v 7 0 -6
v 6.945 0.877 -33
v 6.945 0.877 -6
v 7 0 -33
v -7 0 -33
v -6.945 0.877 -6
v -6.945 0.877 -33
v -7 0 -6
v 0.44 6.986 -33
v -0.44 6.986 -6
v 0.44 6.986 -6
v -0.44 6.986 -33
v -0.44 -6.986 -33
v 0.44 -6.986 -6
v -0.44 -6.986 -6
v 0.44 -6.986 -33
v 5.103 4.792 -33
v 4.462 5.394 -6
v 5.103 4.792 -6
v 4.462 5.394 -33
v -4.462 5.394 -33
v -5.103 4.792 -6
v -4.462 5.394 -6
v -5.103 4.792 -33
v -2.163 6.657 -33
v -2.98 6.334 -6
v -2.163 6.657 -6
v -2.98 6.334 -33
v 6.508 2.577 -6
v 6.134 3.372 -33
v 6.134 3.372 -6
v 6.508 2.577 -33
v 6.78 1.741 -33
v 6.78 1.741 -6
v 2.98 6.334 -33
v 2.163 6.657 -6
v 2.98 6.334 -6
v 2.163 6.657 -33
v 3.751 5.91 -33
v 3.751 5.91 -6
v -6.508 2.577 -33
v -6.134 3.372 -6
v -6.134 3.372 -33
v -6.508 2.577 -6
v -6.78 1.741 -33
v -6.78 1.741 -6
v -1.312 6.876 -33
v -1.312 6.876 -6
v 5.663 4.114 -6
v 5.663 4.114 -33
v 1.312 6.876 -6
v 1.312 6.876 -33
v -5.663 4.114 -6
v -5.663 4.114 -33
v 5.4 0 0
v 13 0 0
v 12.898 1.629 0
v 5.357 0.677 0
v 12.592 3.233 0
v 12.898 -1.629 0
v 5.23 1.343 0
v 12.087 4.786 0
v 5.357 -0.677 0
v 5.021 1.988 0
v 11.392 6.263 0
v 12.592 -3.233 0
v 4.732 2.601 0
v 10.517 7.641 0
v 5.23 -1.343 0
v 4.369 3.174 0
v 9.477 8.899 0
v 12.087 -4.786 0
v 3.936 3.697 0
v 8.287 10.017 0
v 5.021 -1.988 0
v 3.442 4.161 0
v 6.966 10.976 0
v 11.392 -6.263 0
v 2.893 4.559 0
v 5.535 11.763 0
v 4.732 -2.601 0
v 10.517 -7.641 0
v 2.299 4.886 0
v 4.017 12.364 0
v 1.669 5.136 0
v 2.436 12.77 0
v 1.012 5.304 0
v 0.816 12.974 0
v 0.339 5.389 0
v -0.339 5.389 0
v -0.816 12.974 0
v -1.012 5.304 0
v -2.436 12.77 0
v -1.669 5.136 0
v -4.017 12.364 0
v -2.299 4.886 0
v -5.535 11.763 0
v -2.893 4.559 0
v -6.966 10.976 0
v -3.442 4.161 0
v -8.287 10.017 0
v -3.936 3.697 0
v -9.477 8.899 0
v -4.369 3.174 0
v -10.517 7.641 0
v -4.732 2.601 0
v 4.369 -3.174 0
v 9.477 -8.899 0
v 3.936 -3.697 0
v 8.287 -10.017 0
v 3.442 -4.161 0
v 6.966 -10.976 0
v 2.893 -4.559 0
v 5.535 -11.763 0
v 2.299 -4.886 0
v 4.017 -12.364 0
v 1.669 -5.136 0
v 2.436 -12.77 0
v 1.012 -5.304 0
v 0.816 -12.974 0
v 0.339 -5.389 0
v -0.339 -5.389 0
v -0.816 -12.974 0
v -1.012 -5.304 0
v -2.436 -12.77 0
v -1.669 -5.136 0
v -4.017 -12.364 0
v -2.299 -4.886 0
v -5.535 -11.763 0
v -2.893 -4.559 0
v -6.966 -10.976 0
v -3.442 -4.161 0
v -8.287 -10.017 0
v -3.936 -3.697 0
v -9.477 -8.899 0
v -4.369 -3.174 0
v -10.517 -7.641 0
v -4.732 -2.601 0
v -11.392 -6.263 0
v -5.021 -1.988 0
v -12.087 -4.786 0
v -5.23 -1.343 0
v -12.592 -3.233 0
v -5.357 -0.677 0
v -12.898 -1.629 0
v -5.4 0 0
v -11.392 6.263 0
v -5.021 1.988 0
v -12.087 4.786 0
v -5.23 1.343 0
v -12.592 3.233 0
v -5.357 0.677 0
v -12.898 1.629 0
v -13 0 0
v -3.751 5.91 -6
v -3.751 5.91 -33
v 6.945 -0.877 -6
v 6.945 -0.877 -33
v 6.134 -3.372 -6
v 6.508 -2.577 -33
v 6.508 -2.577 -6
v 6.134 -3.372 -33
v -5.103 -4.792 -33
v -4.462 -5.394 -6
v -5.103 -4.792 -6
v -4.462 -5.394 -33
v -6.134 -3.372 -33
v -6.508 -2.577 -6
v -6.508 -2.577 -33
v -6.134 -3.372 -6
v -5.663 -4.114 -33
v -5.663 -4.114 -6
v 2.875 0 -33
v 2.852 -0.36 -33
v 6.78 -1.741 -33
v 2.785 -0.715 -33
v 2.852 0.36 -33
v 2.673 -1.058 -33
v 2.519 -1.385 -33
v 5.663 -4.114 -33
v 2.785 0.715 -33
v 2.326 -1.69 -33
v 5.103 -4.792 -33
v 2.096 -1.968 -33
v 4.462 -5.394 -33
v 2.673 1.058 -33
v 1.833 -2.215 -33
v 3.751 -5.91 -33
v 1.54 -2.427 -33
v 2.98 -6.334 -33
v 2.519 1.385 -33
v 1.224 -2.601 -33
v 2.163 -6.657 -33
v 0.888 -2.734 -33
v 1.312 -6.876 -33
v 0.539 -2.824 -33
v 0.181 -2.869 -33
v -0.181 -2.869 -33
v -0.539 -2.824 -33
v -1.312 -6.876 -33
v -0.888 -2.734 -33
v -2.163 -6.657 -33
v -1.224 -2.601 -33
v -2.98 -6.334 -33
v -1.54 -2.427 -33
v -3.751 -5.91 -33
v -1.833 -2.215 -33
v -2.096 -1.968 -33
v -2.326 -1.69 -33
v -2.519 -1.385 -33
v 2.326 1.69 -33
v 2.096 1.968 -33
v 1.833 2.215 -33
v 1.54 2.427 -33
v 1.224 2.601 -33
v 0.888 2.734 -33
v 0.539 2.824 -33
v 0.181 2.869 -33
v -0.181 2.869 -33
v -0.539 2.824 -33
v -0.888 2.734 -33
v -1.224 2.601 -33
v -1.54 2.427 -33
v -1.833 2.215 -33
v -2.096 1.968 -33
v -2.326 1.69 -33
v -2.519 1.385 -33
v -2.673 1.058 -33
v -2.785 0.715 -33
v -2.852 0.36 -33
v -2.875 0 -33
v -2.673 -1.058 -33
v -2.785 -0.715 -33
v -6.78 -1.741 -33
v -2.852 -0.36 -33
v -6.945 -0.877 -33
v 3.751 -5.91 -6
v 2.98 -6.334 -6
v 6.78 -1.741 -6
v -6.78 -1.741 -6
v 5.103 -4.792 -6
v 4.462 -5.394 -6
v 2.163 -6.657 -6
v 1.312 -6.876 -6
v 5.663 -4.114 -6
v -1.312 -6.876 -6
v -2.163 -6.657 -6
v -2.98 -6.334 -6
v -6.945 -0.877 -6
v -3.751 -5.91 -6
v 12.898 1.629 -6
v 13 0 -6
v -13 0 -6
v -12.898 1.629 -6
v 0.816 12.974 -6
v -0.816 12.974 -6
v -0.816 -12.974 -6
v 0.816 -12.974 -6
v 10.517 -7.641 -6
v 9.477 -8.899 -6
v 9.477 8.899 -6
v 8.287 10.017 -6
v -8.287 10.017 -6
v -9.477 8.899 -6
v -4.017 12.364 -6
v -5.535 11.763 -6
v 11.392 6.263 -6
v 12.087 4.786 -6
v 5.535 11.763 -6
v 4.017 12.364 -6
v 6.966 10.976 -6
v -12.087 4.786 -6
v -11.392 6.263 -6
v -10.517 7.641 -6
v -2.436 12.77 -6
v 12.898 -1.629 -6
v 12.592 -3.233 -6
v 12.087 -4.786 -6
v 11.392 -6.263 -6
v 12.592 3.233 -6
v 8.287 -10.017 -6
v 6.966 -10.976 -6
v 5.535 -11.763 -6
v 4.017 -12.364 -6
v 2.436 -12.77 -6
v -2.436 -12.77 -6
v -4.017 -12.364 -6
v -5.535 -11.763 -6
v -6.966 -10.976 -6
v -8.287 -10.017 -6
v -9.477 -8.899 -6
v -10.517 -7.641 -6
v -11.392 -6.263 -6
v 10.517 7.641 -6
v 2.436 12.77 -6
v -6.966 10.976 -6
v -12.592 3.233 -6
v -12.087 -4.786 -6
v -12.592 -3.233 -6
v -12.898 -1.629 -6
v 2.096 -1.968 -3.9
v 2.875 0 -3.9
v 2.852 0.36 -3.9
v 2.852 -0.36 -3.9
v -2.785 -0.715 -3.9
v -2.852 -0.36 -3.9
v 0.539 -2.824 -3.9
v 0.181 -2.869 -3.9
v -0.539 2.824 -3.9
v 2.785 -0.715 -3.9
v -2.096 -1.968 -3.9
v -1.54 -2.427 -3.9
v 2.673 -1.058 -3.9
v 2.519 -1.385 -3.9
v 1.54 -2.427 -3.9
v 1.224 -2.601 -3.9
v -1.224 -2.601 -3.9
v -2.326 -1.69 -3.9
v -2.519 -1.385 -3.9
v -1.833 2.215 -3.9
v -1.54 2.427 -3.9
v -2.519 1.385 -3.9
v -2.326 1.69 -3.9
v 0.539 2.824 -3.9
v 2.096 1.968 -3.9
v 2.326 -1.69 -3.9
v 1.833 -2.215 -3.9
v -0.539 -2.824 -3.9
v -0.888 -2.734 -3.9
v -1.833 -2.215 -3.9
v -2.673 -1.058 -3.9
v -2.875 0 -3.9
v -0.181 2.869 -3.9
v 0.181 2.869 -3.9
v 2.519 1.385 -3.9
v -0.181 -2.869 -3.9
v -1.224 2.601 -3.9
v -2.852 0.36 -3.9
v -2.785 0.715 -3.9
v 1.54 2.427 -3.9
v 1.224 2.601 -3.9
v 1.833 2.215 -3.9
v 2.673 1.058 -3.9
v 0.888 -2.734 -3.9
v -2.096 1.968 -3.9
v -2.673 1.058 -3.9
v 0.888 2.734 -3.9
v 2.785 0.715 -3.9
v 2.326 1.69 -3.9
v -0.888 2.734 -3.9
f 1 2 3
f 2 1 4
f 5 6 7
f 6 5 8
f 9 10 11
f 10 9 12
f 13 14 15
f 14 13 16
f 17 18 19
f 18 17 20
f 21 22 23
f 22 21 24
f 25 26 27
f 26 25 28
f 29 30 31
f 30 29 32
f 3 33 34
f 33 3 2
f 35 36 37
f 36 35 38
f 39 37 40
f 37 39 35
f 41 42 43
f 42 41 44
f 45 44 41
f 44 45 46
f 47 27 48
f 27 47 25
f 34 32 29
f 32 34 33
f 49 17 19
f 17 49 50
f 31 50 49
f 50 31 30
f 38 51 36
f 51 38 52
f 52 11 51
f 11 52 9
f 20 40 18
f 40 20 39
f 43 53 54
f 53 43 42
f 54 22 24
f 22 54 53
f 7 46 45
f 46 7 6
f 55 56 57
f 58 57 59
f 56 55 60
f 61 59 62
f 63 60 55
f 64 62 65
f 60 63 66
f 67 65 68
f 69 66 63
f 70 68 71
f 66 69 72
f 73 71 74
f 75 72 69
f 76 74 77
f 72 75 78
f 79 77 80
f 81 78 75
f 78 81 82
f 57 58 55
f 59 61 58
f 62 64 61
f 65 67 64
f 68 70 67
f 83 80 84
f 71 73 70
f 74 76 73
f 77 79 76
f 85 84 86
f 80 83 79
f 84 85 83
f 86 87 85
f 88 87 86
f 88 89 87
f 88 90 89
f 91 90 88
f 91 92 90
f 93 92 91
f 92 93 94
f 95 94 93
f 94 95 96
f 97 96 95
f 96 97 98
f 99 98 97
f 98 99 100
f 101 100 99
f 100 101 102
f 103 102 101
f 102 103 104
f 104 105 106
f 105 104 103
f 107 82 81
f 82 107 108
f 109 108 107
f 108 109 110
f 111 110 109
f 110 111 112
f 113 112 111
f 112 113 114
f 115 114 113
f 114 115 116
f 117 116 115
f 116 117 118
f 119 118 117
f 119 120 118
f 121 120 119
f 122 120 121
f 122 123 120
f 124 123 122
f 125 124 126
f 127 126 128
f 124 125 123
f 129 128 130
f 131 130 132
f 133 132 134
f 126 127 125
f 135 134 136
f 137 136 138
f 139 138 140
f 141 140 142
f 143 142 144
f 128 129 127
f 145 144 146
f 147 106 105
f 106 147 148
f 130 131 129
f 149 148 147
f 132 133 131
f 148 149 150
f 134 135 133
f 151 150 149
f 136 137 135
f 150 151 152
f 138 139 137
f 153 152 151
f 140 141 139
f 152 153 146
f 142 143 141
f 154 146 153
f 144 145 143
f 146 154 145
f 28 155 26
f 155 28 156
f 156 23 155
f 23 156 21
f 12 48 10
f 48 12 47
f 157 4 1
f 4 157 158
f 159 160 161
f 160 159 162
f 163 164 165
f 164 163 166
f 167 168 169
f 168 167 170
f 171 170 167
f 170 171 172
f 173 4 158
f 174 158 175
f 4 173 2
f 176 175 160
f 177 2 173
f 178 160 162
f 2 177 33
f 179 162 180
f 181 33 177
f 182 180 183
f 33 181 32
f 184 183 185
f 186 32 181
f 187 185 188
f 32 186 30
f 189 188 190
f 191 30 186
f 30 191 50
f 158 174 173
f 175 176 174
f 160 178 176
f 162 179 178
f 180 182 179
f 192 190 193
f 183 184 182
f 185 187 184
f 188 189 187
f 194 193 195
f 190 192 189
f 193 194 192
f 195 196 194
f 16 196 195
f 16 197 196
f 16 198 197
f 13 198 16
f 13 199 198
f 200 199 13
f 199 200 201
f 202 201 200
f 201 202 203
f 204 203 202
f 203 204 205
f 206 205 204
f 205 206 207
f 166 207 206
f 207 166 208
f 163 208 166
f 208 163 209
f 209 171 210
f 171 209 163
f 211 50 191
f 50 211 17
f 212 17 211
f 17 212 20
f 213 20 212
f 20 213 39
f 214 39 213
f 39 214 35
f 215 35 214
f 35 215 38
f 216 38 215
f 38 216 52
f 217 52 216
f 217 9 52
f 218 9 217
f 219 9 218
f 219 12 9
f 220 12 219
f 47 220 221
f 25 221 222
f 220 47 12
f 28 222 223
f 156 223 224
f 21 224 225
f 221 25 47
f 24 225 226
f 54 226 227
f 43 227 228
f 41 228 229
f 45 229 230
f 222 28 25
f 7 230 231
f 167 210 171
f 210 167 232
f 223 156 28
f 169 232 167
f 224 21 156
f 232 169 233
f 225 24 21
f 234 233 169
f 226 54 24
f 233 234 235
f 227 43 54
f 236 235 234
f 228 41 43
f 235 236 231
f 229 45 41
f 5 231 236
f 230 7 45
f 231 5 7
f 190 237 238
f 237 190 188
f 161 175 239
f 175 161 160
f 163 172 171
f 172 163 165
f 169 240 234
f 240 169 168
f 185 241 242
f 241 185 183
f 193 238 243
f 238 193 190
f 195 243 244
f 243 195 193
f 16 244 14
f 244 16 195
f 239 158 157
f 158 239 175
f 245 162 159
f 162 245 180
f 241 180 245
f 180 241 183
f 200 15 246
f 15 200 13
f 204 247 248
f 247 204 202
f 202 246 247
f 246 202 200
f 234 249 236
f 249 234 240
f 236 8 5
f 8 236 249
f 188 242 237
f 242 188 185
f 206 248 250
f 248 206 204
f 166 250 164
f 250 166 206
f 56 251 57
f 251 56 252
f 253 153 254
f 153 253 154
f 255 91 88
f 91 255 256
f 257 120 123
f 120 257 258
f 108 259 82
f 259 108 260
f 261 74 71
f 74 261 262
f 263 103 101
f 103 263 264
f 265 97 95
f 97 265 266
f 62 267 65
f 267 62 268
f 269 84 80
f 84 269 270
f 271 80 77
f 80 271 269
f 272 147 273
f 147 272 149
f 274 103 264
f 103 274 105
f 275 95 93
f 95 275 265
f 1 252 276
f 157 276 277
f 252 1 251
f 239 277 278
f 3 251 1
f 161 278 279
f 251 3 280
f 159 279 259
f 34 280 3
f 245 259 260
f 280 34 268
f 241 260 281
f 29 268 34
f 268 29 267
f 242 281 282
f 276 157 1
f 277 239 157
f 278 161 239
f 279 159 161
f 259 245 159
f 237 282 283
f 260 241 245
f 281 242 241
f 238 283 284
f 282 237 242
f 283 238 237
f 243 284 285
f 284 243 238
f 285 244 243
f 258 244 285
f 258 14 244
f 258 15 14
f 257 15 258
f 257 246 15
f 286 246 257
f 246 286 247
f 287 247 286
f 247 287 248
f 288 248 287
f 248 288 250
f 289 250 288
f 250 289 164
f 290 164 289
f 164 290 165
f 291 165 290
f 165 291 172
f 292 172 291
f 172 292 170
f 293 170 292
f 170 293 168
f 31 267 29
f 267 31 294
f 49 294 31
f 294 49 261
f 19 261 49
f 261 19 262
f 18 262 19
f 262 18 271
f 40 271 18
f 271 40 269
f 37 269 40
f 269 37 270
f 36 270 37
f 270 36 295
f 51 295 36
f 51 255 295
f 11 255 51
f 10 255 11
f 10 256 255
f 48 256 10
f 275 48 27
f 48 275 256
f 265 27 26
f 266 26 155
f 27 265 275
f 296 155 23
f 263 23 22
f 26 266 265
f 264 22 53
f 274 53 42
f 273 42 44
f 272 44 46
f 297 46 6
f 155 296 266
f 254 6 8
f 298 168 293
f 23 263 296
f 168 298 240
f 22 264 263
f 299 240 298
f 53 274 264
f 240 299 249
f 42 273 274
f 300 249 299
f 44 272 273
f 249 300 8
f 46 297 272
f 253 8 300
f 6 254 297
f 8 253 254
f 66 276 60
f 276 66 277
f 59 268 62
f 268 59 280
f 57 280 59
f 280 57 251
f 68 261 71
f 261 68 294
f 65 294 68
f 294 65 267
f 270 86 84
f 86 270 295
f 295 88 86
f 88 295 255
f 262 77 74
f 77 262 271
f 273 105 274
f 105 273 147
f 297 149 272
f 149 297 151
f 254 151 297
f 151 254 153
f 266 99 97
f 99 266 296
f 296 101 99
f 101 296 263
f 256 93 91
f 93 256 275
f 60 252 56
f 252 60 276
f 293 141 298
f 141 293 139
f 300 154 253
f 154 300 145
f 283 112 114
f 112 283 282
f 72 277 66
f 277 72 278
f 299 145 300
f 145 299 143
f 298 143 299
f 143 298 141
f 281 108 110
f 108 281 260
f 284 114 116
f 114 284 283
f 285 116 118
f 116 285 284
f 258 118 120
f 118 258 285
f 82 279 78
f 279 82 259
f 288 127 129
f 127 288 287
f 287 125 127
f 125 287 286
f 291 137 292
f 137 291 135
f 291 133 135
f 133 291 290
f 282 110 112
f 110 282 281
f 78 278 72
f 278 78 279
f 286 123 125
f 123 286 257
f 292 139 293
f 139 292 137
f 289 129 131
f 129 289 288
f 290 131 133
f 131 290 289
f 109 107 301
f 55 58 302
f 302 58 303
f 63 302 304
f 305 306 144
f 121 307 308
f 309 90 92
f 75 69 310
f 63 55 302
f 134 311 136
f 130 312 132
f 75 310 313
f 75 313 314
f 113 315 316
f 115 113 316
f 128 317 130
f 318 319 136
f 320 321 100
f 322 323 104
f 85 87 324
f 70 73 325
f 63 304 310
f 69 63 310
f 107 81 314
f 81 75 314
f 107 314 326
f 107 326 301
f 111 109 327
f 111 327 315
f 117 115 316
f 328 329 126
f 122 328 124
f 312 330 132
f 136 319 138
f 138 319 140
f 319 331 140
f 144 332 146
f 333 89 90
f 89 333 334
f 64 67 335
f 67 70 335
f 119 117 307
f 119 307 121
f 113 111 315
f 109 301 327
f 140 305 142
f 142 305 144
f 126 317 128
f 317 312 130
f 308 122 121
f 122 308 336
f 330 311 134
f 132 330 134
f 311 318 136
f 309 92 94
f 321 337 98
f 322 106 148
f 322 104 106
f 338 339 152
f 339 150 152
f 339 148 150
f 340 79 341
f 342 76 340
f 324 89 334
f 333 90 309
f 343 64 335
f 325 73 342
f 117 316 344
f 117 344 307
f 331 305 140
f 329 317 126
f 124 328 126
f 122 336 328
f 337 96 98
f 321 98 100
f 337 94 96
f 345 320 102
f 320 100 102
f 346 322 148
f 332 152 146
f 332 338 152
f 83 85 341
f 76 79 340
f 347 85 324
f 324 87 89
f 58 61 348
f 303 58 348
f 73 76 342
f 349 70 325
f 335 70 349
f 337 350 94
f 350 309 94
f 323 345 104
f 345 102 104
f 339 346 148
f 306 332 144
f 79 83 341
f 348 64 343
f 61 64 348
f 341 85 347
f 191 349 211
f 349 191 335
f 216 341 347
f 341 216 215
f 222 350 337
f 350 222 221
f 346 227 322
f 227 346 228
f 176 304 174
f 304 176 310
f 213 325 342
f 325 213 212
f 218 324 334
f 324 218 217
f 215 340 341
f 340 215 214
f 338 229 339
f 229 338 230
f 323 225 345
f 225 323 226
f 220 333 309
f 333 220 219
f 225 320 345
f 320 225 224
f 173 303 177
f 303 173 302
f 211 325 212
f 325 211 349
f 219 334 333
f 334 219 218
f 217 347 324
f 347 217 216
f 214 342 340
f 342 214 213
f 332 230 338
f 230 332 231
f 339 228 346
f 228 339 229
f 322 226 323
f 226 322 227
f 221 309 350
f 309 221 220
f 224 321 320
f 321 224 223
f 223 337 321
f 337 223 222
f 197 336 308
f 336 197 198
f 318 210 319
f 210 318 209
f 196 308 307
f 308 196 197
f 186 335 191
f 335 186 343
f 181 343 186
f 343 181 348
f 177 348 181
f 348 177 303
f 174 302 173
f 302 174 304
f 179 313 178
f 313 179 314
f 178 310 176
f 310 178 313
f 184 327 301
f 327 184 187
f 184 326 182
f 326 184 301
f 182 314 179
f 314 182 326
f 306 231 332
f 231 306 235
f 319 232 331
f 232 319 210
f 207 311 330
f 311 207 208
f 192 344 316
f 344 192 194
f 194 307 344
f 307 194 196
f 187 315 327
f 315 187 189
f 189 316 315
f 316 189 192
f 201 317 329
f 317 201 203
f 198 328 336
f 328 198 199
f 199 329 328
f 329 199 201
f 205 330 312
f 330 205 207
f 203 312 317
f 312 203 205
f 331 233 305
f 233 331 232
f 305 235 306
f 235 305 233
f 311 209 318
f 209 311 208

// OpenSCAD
$fn = 50;


difference() {
	union() {
		translate(v = [0, 0, -33.0000000000]) {
			cylinder(h = 33, r = 7.0000000000);
		}
		translate(v = [0, 0, -6.0000000000]) {
			cylinder(h = 6, r = 13.0000000000);
		}
	}
	union() {
		translate(v = [0, 0, 0]) {
			rotate(a = [0, 0, 0]) {
				difference() {
					union() {
						#translate(v = [0, 0, -33.0000000000]) {
							cylinder(h = 33, r = 2.6000000000);
						}
						#translate(v = [0, 0, -3.9000000000]) {
							cylinder(h = 3.9000000000, r1 = 2.8750000000, r2 = 5.4000000000);
						}
						#translate(v = [0, 0, -33.0000000000]) {
							cylinder(h = 33, r = 2.8750000000);
						}
						#translate(v = [0, 0, -33.0000000000]) {
							cylinder(h = 33, r = 2.6000000000);
						}
					}
					union();
				}
			}
		}
	}
}
